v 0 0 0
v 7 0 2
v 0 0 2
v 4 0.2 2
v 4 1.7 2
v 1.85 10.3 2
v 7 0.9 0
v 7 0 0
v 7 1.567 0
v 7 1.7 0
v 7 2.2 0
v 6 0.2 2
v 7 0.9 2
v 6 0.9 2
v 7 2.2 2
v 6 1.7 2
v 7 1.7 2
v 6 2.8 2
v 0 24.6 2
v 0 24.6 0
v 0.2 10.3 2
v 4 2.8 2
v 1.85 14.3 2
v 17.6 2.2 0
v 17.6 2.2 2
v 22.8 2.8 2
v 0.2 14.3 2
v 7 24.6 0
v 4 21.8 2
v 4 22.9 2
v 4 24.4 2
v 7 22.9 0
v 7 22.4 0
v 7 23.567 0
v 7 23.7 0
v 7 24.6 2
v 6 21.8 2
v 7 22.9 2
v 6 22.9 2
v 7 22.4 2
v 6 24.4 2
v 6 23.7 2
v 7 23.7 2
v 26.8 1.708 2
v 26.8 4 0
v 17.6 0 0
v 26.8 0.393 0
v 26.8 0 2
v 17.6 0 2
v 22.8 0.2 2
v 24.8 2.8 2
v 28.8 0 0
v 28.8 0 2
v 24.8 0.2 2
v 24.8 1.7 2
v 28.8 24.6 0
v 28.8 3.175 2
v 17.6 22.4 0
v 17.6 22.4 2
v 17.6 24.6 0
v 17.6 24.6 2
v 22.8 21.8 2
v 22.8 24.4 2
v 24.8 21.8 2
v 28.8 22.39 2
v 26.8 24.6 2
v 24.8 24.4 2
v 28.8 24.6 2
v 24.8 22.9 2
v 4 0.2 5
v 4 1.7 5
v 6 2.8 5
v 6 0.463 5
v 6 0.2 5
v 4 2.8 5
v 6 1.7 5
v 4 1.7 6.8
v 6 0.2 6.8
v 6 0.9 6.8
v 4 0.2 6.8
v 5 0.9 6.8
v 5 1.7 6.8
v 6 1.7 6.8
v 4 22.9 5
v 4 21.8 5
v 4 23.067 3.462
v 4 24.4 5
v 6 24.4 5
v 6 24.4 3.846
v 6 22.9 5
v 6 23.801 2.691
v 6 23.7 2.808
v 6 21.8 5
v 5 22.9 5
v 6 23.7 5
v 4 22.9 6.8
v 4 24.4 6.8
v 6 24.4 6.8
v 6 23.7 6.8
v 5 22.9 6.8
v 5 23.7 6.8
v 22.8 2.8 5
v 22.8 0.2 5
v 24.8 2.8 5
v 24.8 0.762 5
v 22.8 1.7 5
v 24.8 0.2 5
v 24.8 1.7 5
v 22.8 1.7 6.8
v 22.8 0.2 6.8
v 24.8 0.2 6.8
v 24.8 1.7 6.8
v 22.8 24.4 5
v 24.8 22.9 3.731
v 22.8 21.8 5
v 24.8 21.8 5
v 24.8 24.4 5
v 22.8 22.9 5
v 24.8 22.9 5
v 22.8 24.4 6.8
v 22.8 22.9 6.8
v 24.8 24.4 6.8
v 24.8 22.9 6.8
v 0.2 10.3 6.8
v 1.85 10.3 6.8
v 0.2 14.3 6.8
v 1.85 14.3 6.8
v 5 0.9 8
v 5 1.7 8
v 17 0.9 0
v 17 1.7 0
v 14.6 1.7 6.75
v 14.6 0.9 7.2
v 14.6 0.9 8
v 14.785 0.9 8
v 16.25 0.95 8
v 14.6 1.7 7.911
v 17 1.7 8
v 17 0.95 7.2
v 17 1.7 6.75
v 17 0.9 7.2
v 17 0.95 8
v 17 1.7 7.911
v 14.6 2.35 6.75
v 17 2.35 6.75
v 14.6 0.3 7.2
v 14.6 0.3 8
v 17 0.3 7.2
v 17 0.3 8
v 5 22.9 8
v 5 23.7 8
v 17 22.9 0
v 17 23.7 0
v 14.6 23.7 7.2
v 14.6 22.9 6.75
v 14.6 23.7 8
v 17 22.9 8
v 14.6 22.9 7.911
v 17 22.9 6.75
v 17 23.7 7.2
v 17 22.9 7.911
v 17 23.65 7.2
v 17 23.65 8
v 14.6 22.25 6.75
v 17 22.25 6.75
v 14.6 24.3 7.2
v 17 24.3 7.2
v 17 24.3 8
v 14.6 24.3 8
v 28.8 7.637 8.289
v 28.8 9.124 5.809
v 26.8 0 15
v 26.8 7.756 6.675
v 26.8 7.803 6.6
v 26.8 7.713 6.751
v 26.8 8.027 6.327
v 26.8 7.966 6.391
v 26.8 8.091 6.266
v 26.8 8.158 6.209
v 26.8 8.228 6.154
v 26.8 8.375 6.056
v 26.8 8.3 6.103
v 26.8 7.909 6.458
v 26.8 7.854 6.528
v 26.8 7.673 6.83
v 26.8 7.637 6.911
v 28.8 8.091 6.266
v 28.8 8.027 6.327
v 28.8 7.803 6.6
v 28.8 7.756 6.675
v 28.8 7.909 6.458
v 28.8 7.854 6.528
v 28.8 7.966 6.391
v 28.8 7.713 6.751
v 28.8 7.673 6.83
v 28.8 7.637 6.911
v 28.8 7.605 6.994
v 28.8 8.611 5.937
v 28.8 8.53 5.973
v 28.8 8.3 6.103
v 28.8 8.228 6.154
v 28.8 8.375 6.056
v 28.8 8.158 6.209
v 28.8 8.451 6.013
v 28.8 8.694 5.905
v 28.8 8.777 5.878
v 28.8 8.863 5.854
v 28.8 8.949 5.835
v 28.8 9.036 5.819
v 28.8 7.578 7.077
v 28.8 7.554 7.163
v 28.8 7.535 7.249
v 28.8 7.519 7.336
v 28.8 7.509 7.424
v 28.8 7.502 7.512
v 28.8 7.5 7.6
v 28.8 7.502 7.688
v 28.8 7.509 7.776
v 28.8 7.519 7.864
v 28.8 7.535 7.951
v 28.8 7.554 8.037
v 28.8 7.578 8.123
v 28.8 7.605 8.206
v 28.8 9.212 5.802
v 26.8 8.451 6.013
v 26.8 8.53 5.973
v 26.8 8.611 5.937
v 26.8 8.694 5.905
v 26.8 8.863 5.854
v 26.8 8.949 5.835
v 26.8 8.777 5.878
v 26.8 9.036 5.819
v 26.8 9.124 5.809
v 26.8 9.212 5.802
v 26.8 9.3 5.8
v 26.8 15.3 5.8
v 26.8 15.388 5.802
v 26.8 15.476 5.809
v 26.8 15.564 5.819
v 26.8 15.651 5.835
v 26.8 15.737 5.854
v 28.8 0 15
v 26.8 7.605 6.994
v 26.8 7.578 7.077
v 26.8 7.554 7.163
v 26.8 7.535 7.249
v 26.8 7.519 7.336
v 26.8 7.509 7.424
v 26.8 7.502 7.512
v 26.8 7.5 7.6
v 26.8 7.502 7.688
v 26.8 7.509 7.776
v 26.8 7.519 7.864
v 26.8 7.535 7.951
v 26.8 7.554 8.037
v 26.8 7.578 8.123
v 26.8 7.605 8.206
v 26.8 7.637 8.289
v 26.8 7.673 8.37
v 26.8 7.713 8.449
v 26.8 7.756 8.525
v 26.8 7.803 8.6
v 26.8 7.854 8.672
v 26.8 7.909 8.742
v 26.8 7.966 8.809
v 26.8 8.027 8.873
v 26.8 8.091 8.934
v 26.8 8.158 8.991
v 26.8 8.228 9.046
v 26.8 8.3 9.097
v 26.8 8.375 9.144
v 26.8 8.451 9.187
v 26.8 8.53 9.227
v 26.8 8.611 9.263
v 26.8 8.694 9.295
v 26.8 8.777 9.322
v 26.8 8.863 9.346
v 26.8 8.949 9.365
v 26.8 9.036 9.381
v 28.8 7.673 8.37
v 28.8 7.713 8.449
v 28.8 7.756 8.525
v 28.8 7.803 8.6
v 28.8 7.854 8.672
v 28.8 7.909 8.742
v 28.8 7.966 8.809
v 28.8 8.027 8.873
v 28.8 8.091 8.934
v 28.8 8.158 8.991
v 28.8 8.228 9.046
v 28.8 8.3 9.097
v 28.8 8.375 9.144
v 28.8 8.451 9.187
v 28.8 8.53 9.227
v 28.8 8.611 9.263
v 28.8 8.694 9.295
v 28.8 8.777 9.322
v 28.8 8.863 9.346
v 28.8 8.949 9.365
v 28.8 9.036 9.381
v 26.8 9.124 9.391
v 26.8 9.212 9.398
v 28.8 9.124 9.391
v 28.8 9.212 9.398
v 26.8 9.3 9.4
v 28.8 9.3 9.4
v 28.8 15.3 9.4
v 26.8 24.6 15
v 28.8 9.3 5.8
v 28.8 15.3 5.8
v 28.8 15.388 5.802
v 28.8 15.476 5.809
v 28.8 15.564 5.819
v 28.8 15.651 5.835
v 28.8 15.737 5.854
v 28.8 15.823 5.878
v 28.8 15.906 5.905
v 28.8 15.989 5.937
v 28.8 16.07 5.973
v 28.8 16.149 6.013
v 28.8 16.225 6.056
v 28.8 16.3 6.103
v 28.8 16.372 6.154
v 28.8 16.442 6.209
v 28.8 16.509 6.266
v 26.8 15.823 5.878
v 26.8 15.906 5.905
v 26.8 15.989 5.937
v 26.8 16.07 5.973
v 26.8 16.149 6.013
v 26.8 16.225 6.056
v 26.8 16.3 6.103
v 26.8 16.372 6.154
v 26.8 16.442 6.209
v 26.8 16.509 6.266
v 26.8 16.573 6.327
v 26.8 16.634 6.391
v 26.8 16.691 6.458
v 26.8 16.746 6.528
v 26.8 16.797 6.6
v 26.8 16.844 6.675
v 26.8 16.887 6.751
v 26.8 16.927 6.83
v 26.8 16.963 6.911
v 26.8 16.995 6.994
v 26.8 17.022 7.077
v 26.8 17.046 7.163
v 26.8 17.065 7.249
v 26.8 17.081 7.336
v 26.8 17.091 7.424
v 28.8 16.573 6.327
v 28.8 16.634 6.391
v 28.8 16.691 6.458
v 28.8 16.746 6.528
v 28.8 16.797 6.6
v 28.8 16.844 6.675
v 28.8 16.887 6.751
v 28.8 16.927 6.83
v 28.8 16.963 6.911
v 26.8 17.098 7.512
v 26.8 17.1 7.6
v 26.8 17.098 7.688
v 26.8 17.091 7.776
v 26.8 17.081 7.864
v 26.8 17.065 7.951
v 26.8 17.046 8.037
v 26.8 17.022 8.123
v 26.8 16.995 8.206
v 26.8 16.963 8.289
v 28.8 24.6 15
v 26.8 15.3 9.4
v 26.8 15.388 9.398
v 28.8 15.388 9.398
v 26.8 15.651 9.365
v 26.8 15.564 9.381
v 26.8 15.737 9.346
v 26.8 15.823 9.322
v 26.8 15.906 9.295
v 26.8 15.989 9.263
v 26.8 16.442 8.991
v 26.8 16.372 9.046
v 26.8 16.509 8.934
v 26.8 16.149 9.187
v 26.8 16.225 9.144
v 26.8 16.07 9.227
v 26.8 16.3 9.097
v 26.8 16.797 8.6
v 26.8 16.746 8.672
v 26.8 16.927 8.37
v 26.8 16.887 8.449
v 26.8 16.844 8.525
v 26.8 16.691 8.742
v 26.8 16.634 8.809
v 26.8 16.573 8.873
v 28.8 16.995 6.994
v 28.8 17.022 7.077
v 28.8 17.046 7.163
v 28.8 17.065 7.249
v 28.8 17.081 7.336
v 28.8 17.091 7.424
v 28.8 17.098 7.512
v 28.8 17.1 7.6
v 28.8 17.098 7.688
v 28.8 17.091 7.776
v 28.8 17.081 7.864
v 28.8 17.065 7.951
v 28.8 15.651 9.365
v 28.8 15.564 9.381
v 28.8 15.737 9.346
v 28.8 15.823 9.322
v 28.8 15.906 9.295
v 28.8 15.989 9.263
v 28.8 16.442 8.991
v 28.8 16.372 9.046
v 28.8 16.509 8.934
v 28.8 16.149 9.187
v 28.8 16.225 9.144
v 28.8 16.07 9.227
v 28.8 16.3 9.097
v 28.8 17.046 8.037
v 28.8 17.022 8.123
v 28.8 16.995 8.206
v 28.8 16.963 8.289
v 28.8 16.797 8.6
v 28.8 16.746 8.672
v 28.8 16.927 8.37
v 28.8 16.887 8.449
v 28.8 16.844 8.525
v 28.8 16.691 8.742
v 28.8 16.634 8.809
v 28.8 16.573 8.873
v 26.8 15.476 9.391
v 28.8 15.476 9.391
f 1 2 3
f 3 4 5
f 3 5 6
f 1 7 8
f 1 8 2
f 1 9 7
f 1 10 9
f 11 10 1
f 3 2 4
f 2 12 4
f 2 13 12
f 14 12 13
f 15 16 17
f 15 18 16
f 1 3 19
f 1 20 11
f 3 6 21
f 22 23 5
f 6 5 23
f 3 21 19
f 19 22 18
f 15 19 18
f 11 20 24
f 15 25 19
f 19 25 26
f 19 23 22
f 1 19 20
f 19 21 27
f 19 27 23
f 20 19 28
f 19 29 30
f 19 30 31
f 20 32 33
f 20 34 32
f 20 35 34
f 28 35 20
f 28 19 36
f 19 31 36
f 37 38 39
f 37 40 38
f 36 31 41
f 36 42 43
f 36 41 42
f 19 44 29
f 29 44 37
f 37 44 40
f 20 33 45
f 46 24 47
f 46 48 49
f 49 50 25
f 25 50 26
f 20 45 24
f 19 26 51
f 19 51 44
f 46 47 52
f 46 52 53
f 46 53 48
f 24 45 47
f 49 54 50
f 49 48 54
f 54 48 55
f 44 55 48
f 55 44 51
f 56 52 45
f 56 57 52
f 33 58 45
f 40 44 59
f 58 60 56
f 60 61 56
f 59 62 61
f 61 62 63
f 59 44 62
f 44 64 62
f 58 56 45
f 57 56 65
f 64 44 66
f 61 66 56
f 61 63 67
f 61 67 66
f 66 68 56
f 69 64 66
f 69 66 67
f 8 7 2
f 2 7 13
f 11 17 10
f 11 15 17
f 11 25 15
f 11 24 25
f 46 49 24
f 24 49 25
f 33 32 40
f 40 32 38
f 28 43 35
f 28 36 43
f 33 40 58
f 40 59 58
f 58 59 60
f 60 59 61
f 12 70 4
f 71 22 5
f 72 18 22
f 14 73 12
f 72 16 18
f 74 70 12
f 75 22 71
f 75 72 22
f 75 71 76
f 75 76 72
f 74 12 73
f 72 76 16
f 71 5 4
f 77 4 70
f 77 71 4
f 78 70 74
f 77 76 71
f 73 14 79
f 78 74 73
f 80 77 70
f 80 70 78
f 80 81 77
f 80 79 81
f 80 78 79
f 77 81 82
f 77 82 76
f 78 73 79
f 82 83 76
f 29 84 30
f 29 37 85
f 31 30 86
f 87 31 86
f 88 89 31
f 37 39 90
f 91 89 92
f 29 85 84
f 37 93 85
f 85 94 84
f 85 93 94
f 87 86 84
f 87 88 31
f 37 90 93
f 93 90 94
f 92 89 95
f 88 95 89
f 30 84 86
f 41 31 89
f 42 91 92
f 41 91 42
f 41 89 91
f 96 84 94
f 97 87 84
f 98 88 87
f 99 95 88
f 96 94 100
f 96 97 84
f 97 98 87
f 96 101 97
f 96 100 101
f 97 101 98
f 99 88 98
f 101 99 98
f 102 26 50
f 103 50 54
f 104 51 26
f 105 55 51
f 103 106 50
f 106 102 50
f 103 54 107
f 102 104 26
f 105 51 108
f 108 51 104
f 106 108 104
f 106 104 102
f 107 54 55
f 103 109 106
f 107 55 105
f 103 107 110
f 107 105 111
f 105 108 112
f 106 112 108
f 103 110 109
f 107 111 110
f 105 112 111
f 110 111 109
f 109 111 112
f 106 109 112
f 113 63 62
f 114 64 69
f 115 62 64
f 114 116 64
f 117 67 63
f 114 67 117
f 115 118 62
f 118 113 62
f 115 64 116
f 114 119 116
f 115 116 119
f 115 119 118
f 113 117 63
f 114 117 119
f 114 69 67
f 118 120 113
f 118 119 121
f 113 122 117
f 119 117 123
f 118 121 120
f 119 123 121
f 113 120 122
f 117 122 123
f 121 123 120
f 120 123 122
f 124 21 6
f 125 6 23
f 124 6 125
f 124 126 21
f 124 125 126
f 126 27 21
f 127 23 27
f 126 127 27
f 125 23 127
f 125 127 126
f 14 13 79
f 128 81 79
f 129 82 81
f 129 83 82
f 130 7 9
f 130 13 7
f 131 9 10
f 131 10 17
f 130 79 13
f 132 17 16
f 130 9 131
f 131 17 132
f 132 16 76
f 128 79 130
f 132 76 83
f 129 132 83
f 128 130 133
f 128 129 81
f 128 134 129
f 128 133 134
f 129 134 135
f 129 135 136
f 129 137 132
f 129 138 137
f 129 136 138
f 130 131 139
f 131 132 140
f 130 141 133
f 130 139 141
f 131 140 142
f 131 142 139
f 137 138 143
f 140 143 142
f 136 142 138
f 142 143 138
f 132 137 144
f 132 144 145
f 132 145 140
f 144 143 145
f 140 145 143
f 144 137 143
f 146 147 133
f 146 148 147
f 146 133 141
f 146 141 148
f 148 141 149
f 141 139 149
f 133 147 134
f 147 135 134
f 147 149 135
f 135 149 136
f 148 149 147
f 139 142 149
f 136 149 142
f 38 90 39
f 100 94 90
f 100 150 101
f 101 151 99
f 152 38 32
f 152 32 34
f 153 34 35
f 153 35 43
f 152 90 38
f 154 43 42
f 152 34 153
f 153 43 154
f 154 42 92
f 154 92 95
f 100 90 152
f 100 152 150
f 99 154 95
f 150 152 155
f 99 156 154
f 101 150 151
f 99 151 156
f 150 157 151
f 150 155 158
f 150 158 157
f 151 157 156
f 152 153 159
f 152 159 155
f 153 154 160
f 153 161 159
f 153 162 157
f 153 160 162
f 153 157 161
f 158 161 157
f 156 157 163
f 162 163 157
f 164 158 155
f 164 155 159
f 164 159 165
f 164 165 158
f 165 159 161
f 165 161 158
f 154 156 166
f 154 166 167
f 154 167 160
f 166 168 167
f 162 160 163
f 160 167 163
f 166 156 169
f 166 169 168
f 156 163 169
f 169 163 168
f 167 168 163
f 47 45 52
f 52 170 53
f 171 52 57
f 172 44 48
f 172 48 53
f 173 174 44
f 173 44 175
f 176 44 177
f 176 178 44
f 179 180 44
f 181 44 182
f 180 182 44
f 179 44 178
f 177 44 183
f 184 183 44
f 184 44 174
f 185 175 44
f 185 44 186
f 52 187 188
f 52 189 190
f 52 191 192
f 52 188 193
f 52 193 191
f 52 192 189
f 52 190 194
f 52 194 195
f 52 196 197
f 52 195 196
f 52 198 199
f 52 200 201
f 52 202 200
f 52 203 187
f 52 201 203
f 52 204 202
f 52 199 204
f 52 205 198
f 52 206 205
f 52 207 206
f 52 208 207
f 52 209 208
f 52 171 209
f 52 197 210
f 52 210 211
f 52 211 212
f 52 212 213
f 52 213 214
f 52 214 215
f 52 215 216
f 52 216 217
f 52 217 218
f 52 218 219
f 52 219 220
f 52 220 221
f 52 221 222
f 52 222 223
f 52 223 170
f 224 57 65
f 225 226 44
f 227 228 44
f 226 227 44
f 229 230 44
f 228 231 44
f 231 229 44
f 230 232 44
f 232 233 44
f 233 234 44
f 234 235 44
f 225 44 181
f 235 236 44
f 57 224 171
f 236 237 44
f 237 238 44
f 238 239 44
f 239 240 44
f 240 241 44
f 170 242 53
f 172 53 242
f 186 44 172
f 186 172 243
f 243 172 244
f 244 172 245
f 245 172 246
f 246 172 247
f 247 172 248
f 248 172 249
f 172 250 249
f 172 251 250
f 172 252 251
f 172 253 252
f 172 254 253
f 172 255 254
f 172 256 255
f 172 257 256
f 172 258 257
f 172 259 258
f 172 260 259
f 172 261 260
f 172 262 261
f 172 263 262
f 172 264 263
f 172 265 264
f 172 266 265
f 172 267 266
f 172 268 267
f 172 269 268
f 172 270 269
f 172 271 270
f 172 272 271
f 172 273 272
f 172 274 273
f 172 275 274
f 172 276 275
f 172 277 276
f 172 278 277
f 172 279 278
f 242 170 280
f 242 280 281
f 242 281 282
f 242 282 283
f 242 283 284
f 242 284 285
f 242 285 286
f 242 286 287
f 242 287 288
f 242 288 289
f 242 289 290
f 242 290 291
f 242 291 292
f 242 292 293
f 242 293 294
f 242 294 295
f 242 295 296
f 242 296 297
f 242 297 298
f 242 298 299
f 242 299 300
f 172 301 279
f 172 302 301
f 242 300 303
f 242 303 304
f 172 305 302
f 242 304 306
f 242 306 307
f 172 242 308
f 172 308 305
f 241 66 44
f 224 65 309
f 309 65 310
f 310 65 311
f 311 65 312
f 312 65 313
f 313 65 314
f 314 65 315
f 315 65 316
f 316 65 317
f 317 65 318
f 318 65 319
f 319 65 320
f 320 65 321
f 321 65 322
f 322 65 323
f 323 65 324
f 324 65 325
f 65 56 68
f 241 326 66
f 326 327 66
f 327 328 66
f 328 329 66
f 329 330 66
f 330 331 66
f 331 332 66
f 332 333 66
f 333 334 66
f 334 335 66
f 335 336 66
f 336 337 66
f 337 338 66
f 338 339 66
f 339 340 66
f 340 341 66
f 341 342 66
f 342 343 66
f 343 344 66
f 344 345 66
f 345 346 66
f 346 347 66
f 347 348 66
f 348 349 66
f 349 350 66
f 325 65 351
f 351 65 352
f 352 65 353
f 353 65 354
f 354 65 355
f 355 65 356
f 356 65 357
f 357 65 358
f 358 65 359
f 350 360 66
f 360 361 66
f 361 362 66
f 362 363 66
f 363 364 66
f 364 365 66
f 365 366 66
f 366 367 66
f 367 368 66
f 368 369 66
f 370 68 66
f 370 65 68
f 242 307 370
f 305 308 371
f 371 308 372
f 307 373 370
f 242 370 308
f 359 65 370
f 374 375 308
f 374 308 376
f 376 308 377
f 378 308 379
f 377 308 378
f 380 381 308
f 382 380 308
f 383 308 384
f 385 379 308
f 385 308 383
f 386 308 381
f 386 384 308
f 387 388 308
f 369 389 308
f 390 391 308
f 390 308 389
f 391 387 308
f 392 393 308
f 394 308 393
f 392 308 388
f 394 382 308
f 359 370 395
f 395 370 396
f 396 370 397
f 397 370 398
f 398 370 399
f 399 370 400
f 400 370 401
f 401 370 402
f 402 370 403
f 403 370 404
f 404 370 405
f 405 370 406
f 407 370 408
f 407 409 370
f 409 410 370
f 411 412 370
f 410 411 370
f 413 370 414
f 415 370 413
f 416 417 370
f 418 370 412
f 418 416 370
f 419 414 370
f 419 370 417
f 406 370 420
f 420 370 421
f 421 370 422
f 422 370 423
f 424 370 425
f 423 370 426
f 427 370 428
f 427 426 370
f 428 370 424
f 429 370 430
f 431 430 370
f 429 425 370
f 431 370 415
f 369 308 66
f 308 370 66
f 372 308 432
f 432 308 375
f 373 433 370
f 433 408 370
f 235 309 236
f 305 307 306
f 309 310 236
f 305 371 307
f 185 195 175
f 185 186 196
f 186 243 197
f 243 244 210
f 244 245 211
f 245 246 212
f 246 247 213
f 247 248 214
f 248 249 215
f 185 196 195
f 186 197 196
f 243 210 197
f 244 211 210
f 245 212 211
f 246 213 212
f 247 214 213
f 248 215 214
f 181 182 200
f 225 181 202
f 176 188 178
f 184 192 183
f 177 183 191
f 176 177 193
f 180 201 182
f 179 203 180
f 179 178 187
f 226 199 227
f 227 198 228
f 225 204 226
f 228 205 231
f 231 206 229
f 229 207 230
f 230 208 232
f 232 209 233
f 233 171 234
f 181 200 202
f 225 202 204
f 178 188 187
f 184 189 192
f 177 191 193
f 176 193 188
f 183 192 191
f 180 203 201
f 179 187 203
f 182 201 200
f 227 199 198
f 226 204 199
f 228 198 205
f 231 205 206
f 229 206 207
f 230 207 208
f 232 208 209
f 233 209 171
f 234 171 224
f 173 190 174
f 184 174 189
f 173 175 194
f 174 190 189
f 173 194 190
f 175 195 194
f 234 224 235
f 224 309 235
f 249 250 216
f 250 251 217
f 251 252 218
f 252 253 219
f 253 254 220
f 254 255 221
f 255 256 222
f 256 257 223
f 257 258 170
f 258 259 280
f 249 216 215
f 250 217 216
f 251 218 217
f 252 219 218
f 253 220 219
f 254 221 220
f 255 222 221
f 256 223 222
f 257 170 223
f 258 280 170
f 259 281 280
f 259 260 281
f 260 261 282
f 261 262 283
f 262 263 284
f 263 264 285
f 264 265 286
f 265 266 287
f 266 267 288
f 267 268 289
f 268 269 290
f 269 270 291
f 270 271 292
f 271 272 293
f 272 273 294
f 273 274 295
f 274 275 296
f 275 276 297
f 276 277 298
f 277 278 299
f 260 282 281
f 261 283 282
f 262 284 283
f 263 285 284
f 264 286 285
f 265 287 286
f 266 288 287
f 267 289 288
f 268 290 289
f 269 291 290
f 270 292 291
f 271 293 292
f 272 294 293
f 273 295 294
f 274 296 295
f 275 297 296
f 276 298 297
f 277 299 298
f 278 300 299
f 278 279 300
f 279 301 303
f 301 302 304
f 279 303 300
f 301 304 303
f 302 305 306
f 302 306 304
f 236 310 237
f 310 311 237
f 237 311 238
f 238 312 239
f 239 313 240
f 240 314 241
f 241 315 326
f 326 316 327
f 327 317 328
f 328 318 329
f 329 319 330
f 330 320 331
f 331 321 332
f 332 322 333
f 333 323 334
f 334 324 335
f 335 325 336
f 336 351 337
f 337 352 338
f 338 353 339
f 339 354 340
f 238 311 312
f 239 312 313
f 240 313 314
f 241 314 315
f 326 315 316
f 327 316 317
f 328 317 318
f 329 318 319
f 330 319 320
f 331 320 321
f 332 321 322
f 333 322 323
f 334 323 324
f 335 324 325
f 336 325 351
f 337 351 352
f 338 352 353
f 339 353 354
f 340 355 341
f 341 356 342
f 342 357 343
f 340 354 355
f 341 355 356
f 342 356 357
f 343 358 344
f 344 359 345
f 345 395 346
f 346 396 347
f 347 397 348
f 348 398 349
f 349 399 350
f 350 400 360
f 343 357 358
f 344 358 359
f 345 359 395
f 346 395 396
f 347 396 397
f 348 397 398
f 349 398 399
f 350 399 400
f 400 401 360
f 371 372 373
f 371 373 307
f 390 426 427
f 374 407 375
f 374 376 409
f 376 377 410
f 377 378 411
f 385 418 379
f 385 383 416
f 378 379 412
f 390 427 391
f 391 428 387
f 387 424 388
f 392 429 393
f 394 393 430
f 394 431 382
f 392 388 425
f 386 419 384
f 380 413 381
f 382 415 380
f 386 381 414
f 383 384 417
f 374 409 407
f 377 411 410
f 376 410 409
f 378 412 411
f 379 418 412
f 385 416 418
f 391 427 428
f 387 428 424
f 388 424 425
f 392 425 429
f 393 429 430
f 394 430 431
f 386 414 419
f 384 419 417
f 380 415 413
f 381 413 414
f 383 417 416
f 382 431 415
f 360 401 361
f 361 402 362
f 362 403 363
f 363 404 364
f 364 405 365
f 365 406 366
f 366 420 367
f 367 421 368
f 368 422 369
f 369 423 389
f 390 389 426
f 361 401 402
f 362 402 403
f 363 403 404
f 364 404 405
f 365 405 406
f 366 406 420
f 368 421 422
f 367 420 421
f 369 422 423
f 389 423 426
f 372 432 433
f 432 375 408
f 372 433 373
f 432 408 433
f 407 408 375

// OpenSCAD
// Sample with flexible side latches, v0.8. Millimetres.
translate([-49.2, -7.0, 0]) union(){
difference(){
translate([49.2, 7.0, 0]) cube([28.8, 24.6, 2.0]);
translate([56.2, 6.9, -0.1]) cube([10.6, 2.3, 2.2]);
translate([56.2, 29.400000000000002, -0.1]) cube([10.6, 2.3, 2.2]);
}
union(){
translate([53.2, 7.2, 2.0]) cube([2.0, 2.6, 3.0]);
translate([53.2, 7.2, 2.0]) cube([2.0, 1.5, 4.8]);
translate([53.2, 28.8, 2.0]) cube([2.0, 2.6, 3.0]);
translate([53.2, 29.900000000000002, 2.0]) cube([2.0, 1.5, 4.8]);
translate([72.0, 7.2, 2.0]) cube([2.0, 2.6, 3.0]);
translate([72.0, 7.2, 2.0]) cube([2.0, 1.5, 4.8]);
translate([72.0, 28.8, 2.0]) cube([2.0, 2.6, 3.0]);
translate([72.0, 29.900000000000002, 2.0]) cube([2.0, 1.5, 4.8]);
translate([49.400000000000006, 17.3, 2.0]) cube([1.65, 4.0, 4.8]);
}
union(){
translate([54.2, 7.8999999999999995, 0]) cube([12.0, 0.8, 8.0]);
polyhedron(points=[[63.800000000000004, 9.35, 6.75], [66.2, 9.35, 6.75], [63.800000000000004, 8.649999999999999, 6.75], [66.2, 8.649999999999999, 6.75], [63.800000000000004, 8.649999999999999, 8.0], [66.2, 8.649999999999999, 8.0]],faces=[[0, 2, 4], [1, 5, 3], [0, 1, 3], [0, 3, 2], [2, 3, 5], [2, 5, 4], [4, 5, 1], [4, 1, 0]]);
translate([63.800000000000004, 7.3, 7.2]) cube([2.4, 0.65, 0.8]);
}
union(){
translate([54.2, 29.900000000000002, 0]) cube([12.0, 0.8, 8.0]);
polyhedron(points=[[63.800000000000004, 29.25, 6.75], [66.2, 29.25, 6.75], [63.800000000000004, 29.950000000000003, 6.75], [66.2, 29.950000000000003, 6.75], [63.800000000000004, 29.950000000000003, 8.0], [66.2, 29.950000000000003, 8.0]],faces=[[4, 2, 0], [3, 5, 1], [3, 1, 0], [2, 3, 0], [5, 3, 2], [4, 5, 2], [1, 5, 4], [0, 1, 4]]);
translate([63.800000000000004, 30.650000000000002, 7.2]) cube([2.4, 0.65, 0.8]);
}
difference(){
translate([76.0, 7.0, 0]) cube([2, 24.6, 15.0]);
union(){
translate([75.9, 16.3, 5.8]) cube([2.2, 6.0, 3.6]);
translate([75.9, 16.3, 7.6]) rotate([0,90,0]) cylinder(h=2.2,r=1.8,$fn=128);
translate([75.9, 22.3, 7.6]) rotate([0,90,0]) cylinder(h=2.2,r=1.8,$fn=128);
}
}
}
